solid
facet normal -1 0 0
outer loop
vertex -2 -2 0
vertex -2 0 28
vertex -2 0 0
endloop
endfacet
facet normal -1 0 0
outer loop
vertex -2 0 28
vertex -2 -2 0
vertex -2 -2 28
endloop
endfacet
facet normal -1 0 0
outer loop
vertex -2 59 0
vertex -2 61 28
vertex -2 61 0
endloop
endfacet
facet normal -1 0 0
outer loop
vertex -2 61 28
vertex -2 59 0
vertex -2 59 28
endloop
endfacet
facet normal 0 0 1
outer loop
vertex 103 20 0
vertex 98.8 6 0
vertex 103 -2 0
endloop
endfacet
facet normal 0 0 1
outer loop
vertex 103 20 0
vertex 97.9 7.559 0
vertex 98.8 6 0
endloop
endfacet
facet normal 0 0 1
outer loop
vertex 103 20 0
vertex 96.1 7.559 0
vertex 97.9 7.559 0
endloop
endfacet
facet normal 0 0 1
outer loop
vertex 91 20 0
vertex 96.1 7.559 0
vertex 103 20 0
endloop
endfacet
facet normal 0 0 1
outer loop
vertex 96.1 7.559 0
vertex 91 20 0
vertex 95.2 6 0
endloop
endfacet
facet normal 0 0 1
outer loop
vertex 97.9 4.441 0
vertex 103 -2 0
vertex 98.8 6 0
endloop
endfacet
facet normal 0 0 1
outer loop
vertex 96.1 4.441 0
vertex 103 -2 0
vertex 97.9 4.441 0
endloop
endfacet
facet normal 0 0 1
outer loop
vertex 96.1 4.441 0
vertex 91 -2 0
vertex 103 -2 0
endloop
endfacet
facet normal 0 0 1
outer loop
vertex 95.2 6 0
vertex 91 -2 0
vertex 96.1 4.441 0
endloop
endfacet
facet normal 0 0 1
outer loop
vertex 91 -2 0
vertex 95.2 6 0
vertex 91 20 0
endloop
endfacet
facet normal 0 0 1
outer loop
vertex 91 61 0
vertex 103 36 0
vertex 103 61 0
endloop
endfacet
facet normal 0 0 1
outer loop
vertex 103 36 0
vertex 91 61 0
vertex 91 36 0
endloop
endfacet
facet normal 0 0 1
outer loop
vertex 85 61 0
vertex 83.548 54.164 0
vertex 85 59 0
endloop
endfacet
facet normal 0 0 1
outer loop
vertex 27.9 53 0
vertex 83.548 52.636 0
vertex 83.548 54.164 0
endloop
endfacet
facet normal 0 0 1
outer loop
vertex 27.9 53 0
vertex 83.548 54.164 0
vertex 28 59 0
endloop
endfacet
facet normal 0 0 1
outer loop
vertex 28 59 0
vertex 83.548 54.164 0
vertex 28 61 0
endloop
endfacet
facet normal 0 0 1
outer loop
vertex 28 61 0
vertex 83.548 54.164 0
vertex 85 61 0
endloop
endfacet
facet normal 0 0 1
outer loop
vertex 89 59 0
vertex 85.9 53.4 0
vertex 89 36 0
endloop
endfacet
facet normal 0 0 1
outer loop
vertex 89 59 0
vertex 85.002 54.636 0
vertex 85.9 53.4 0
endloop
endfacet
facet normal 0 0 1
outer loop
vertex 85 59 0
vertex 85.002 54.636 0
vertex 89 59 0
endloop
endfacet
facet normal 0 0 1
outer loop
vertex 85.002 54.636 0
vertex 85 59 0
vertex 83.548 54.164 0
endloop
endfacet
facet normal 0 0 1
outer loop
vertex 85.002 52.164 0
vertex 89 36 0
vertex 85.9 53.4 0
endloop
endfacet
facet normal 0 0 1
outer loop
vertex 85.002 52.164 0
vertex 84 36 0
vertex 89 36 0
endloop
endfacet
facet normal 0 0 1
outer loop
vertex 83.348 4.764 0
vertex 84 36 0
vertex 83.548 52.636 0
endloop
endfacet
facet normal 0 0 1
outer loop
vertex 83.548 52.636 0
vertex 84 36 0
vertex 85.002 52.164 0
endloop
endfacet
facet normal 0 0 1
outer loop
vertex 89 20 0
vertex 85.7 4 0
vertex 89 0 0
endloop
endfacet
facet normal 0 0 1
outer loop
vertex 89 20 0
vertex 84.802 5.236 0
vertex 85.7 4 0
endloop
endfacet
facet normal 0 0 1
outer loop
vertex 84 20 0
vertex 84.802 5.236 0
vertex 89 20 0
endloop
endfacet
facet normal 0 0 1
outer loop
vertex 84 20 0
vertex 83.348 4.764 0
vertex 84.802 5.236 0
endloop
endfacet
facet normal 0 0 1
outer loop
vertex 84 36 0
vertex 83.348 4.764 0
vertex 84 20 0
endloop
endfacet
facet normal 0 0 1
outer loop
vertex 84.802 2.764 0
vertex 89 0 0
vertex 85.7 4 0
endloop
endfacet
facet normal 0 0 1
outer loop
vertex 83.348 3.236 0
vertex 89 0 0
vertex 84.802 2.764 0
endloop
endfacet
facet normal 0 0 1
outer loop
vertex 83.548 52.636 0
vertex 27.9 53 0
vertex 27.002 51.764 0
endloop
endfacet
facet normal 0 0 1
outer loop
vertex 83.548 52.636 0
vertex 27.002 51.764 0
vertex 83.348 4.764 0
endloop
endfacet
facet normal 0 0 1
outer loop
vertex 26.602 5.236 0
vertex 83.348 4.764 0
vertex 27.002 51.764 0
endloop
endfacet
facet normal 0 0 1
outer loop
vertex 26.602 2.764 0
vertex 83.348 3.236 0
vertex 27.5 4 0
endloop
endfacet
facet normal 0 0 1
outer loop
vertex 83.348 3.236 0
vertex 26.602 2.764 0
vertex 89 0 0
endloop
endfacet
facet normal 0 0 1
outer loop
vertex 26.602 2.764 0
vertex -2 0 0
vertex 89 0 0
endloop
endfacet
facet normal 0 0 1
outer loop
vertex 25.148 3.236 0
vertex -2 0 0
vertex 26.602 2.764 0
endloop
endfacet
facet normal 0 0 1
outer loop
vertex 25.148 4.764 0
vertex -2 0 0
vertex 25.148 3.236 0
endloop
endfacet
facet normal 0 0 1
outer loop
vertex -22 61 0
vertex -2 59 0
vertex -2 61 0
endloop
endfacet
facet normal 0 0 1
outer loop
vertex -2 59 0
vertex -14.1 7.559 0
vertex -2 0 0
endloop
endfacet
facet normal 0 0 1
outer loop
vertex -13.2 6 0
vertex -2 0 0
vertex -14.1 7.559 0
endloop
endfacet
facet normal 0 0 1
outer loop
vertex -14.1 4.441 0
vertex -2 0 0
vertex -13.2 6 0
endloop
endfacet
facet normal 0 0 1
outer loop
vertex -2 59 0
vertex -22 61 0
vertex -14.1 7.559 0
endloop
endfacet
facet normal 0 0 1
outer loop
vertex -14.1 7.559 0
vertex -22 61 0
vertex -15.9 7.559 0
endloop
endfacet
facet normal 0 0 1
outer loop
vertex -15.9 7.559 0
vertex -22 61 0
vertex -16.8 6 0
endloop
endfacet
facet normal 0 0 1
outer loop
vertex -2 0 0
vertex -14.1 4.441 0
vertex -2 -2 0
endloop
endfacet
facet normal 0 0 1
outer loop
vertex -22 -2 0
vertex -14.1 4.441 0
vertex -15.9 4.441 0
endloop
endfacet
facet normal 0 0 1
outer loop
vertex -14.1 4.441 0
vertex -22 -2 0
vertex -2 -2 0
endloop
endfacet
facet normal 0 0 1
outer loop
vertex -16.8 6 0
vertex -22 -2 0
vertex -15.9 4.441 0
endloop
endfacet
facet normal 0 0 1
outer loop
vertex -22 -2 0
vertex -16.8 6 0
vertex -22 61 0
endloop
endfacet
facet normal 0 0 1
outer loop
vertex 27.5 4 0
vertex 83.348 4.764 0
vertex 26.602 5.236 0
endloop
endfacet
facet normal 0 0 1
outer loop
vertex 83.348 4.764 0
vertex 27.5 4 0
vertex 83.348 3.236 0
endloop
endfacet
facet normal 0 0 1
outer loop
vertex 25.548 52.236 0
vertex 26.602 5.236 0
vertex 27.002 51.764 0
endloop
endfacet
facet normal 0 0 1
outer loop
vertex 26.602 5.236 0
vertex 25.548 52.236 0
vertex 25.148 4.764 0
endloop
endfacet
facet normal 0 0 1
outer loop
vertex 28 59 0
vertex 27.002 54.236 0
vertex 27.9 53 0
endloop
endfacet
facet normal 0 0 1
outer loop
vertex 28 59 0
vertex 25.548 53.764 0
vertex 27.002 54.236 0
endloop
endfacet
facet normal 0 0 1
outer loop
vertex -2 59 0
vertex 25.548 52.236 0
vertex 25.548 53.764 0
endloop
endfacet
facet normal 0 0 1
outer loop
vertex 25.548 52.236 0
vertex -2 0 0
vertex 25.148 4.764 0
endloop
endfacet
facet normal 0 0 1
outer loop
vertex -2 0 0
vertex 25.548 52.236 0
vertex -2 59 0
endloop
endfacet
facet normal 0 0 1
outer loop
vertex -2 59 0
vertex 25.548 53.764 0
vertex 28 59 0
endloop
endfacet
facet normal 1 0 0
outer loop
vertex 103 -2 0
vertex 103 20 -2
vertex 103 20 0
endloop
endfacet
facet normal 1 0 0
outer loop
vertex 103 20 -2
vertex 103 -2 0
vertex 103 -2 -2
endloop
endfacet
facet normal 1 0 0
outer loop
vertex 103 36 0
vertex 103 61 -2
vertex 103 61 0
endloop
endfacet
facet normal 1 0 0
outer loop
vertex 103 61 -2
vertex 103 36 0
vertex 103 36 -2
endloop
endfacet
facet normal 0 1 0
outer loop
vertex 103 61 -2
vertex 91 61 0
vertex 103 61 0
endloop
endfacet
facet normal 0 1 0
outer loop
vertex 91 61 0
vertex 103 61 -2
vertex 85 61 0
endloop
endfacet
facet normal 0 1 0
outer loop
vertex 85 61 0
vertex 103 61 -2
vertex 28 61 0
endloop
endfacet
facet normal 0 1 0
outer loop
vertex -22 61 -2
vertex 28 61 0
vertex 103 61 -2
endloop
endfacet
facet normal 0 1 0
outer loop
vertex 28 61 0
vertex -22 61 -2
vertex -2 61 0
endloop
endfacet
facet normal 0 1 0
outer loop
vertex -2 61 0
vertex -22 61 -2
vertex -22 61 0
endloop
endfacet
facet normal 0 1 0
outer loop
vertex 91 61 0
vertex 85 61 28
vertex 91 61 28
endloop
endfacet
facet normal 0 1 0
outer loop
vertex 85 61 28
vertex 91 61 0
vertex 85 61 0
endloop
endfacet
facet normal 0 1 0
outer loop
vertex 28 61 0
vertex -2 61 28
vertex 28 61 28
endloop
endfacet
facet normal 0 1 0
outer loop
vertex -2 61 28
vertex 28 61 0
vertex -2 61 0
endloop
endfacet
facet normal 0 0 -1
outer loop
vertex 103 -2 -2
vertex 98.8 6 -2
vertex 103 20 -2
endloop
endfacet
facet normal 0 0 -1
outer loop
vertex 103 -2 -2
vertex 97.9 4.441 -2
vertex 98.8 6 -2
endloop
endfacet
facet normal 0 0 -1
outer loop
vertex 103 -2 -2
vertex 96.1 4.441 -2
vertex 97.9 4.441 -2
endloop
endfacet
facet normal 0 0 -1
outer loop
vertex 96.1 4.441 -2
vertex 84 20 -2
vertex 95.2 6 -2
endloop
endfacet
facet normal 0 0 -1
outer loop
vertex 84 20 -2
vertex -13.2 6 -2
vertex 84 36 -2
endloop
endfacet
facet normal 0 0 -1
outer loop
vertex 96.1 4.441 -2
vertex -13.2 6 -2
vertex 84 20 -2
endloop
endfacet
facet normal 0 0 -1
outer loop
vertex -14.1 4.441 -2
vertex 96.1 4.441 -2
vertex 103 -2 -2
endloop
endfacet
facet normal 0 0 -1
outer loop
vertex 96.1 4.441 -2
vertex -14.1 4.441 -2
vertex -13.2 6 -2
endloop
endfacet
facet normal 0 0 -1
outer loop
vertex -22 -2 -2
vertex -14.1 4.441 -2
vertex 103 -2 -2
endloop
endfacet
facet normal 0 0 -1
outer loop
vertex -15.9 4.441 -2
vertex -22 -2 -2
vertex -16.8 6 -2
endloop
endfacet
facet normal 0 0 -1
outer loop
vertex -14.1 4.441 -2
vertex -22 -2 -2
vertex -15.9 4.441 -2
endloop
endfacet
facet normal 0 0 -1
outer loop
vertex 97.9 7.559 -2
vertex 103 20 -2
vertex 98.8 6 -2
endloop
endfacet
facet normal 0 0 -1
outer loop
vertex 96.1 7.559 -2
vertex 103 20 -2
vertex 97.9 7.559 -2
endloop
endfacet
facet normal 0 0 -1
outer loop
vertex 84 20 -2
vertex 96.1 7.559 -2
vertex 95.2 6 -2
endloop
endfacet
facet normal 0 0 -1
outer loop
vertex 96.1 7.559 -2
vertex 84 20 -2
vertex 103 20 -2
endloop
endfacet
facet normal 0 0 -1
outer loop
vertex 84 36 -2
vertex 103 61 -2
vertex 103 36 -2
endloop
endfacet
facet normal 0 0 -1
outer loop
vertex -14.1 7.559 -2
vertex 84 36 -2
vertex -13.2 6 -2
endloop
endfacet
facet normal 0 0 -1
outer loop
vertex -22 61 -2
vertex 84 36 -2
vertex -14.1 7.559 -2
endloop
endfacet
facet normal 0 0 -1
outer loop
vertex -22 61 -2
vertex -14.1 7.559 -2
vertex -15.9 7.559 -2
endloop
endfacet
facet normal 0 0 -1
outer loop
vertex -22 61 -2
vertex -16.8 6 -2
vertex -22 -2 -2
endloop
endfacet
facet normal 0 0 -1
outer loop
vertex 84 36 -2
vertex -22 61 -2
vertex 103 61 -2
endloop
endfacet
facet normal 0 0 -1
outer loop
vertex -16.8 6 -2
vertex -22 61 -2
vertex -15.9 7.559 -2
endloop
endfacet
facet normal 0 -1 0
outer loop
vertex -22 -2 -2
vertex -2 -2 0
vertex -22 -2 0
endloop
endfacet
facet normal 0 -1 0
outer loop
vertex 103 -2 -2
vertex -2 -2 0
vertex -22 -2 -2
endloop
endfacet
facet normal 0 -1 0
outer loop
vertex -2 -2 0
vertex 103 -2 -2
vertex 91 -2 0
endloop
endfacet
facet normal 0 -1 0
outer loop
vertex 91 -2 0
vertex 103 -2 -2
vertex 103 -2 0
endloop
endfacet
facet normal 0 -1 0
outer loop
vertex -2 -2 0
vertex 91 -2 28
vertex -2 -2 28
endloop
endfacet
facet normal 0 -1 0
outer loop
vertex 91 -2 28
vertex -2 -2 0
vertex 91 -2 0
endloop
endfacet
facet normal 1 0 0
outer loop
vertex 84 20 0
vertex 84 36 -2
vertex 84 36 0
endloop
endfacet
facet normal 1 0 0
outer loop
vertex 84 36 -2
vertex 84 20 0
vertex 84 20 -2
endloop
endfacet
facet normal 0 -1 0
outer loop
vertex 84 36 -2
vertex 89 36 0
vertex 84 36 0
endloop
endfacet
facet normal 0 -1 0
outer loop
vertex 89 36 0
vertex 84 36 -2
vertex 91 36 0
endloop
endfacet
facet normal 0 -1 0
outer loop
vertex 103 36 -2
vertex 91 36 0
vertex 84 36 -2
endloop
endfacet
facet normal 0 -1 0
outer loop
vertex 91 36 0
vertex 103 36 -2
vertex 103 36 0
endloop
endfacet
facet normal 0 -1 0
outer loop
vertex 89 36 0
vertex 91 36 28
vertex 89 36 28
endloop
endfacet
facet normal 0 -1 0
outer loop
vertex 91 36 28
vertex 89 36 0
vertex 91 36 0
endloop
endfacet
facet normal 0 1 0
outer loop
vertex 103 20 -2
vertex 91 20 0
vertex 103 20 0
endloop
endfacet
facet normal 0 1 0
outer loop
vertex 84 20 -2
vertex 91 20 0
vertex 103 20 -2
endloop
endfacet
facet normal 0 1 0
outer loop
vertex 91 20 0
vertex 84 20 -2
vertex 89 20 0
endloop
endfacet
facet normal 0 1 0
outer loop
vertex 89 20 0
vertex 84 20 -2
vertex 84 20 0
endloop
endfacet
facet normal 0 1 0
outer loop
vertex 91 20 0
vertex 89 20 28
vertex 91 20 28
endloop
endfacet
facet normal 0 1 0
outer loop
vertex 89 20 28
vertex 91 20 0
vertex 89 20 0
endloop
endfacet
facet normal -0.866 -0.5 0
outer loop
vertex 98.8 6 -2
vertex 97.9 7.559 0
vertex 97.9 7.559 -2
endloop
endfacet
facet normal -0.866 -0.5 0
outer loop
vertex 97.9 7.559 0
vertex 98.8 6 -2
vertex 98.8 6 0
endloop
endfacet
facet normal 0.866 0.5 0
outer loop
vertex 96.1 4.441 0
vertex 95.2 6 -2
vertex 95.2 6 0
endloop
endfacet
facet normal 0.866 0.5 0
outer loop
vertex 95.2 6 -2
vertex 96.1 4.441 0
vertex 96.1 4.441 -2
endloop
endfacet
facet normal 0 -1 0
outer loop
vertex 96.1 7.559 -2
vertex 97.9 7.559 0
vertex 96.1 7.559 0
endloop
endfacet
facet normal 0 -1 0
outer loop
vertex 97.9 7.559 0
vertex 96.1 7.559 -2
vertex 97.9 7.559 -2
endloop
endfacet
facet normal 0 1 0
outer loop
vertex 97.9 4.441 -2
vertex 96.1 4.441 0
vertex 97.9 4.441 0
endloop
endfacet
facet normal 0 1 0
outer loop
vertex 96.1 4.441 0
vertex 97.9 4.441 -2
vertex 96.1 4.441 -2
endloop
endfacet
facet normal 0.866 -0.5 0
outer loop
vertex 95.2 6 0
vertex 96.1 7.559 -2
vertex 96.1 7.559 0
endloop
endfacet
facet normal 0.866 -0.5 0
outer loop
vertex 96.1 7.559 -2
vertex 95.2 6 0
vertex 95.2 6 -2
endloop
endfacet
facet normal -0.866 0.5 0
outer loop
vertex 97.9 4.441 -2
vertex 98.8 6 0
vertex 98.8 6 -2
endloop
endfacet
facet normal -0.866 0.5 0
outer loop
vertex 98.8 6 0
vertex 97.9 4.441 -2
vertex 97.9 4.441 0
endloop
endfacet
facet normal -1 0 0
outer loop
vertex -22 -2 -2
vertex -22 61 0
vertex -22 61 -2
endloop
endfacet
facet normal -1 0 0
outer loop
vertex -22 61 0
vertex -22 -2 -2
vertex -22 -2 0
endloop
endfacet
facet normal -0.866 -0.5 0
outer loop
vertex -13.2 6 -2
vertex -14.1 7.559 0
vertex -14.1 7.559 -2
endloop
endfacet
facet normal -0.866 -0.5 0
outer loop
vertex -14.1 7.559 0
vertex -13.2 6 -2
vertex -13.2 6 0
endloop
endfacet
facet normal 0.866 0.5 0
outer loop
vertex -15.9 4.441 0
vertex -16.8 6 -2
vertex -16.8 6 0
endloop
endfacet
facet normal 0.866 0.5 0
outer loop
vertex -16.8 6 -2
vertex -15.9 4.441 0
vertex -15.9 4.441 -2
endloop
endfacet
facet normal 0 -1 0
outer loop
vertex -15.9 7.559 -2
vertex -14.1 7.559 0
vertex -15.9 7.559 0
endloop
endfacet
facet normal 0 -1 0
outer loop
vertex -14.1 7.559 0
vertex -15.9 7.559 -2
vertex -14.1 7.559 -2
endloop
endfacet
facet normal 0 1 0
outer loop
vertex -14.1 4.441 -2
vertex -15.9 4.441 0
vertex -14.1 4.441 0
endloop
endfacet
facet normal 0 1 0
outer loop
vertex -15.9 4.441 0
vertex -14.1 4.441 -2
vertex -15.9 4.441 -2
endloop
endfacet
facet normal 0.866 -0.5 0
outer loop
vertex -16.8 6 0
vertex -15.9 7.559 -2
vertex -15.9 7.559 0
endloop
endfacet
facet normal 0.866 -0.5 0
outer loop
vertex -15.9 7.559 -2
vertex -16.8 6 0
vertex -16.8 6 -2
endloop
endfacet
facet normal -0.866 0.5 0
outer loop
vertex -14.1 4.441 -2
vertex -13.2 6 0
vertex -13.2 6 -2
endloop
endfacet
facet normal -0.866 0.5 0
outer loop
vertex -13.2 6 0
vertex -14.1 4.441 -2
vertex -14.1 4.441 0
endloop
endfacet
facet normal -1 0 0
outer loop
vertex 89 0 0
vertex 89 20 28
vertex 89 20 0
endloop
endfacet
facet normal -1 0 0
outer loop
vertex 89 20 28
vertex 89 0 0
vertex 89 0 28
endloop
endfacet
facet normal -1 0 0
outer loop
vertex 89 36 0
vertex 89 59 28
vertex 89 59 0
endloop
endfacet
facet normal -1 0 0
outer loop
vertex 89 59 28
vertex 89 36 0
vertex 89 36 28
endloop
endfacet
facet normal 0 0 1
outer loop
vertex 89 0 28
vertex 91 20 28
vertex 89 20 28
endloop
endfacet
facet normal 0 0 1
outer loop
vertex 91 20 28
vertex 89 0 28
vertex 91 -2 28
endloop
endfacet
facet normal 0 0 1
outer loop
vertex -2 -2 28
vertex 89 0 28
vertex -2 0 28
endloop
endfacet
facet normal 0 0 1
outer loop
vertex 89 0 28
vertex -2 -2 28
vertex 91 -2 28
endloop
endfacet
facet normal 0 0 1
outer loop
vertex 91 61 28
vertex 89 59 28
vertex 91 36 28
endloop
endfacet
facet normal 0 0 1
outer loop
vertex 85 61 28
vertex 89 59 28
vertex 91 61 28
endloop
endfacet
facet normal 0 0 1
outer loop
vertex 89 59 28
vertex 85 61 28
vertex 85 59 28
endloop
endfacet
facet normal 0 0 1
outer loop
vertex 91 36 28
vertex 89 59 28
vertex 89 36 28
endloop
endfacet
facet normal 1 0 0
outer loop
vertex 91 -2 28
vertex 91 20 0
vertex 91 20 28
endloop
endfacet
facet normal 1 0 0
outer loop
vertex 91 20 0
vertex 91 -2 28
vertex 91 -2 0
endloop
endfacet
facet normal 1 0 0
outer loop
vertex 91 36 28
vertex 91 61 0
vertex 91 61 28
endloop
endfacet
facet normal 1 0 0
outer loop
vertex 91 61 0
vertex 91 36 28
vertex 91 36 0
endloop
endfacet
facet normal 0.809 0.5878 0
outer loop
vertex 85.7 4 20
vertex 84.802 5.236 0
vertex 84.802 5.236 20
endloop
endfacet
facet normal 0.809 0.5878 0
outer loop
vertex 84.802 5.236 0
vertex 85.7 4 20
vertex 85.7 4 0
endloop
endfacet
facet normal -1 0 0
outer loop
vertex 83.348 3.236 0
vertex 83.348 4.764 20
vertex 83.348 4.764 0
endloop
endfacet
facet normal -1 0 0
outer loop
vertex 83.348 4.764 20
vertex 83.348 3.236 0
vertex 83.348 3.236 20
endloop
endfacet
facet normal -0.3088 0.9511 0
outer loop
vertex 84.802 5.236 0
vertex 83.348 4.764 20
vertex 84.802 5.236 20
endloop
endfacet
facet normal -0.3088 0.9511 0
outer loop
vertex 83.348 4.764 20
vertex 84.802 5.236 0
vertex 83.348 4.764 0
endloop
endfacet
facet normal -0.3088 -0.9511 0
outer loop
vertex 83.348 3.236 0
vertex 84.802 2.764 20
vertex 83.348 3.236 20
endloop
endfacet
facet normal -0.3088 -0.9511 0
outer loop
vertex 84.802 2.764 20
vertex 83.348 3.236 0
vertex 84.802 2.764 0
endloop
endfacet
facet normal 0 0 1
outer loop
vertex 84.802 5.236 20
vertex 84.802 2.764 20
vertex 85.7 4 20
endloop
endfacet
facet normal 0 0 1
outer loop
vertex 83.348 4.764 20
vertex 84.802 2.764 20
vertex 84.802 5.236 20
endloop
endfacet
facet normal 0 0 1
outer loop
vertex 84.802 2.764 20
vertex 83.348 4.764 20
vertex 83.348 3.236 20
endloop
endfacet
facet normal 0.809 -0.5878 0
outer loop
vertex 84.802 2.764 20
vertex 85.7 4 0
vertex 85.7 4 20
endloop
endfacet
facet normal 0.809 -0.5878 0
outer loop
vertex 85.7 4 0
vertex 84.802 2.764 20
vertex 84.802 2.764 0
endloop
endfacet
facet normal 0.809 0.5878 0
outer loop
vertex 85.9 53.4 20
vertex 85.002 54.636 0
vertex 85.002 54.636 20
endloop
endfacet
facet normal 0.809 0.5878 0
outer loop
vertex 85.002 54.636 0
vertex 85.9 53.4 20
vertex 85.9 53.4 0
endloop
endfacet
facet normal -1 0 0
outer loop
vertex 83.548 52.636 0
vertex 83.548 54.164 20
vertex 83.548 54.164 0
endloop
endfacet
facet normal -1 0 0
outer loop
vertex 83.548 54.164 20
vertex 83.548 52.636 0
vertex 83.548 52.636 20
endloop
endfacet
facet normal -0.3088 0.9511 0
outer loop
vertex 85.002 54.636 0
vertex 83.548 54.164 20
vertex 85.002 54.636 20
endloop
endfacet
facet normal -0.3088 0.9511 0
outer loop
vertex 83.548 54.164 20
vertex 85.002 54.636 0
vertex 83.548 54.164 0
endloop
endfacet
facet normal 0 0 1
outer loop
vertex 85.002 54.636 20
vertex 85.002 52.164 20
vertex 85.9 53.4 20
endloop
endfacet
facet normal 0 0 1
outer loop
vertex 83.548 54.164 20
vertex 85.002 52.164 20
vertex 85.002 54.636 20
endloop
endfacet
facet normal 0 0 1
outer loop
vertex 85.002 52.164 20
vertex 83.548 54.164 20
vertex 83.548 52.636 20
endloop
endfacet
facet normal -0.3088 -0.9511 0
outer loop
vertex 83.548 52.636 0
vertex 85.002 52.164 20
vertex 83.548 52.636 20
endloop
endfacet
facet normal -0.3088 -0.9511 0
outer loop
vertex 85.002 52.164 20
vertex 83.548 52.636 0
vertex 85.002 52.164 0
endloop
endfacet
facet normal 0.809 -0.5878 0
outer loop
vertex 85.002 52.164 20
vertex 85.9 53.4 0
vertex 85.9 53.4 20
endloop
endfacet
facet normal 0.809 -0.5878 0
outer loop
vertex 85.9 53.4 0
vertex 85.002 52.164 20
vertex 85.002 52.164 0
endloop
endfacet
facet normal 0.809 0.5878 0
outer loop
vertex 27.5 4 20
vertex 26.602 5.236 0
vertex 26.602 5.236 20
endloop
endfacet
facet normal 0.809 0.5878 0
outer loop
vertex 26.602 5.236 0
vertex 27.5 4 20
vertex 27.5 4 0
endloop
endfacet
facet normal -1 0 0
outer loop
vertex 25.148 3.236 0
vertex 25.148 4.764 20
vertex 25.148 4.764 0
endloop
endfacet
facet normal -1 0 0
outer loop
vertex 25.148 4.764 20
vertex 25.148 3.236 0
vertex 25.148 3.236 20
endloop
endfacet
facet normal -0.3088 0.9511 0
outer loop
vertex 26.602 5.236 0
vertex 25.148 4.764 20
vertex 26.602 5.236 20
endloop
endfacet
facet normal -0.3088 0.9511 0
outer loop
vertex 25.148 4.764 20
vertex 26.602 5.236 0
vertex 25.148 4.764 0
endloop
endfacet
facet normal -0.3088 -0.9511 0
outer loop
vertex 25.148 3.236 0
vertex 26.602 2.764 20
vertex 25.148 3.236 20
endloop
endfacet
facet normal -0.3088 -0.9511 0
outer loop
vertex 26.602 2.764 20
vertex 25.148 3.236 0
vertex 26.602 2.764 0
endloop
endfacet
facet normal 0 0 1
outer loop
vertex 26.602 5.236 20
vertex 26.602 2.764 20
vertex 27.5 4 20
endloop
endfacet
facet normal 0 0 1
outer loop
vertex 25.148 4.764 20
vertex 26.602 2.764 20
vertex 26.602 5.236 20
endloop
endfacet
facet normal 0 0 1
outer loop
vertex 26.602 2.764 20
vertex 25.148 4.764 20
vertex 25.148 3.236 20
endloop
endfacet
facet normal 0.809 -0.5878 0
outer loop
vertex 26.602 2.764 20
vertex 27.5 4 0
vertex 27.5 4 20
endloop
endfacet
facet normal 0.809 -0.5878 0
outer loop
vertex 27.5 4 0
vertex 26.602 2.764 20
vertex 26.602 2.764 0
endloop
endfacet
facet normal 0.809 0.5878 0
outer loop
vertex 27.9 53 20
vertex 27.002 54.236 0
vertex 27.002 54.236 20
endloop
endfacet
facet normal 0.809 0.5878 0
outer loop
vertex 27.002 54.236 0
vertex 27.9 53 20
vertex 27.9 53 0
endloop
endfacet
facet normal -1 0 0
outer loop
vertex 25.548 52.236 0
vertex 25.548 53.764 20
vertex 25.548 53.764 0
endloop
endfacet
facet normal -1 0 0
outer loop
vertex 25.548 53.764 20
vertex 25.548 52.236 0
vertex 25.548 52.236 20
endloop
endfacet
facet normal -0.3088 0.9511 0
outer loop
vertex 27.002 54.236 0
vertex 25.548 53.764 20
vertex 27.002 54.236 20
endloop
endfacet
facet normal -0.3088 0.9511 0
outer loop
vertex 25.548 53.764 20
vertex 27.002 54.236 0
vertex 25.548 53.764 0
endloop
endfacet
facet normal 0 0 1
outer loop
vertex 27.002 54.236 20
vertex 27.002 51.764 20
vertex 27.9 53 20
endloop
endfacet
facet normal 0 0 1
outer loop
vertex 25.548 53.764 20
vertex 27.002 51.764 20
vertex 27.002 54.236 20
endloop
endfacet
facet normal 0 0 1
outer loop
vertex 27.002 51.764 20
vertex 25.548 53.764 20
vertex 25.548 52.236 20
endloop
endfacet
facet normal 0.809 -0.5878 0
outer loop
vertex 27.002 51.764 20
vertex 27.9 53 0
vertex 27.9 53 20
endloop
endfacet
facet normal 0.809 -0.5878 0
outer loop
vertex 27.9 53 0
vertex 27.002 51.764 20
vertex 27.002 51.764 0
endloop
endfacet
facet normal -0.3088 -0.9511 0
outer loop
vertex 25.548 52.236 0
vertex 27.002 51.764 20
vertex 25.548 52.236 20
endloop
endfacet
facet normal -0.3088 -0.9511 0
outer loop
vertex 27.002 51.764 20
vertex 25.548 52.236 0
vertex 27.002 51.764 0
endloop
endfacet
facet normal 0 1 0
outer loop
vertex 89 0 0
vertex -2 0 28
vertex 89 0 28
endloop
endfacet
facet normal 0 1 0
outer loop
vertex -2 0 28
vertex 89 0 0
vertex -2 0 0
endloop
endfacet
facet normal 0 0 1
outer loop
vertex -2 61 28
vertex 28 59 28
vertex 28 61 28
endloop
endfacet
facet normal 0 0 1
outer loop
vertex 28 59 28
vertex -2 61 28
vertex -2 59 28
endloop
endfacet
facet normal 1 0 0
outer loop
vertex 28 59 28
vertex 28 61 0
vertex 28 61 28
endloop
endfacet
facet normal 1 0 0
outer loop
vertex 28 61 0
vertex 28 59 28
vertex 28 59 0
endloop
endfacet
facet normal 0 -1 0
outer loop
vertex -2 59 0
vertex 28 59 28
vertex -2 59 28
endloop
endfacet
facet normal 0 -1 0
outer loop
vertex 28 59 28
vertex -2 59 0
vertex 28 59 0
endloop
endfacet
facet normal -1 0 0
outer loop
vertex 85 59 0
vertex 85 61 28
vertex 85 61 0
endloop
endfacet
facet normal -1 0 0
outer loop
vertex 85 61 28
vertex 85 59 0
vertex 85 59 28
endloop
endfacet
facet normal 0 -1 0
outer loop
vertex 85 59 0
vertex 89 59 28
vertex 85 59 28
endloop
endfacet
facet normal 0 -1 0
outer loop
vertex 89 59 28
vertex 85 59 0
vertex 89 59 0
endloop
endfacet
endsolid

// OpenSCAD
box_length=90;
box_width=59;
small_distance_between_holes=49;
box_height=30;
SD_side_grabber_length=15;
thickness=2;

// #translate([-2, 0, 27]) cube([1, 59, 1]);

//flat grabber
difference() {
    translate([-thickness, -thickness, -thickness])cube([box_length+SD_side_grabber_length, box_width+(thickness*2), thickness]);
    translate([84, 20, -5])cube([30, 16, 10]);
    translate([97, 6, -5]) cylinder(10, 1.8, 1.8);
}

difference () {
//grabber
    translate([-20-thickness, -thickness, -thickness]) cube([20, box_width+(thickness*2), thickness]);
    
    translate([-15, 6, -5]) cylinder(10, 1.8, 1.8);
}

// distance of 4 from right-most edge
// two sticks, close to closed side
translate([box_length - 5.6, 4, 0]) cylinder(20, 2.6/2, 2.6/2);
translate([box_length - 5.4, 53.4, 0]) cylinder(20, 2.6/2, 2.6/2);

// distance of 62 from right-most-edge
// two sticks, close to open side
translate([box_length - 63.8, 4, 0]) cylinder(20, 2.6/2, 2.6/2);
translate([box_length - 63.4, 53, 0]) cylinder(20, 2.6/2, 2.6/2);

// side support
translate([-thickness, -thickness, -thickness])cube([box_length + thickness, thickness, box_height]);
translate([-thickness, box_width, -thickness])cube([30, thickness, box_height]);
translate([85, box_width, -thickness])cube([5, thickness, box_height]);

difference() {
    translate([89, -thickness, -thickness]) cube([thickness, box_width+(2*thickness), box_height]);
    translate([88, 20, -10]) cube([thickness+2, 16, 50]);
}
